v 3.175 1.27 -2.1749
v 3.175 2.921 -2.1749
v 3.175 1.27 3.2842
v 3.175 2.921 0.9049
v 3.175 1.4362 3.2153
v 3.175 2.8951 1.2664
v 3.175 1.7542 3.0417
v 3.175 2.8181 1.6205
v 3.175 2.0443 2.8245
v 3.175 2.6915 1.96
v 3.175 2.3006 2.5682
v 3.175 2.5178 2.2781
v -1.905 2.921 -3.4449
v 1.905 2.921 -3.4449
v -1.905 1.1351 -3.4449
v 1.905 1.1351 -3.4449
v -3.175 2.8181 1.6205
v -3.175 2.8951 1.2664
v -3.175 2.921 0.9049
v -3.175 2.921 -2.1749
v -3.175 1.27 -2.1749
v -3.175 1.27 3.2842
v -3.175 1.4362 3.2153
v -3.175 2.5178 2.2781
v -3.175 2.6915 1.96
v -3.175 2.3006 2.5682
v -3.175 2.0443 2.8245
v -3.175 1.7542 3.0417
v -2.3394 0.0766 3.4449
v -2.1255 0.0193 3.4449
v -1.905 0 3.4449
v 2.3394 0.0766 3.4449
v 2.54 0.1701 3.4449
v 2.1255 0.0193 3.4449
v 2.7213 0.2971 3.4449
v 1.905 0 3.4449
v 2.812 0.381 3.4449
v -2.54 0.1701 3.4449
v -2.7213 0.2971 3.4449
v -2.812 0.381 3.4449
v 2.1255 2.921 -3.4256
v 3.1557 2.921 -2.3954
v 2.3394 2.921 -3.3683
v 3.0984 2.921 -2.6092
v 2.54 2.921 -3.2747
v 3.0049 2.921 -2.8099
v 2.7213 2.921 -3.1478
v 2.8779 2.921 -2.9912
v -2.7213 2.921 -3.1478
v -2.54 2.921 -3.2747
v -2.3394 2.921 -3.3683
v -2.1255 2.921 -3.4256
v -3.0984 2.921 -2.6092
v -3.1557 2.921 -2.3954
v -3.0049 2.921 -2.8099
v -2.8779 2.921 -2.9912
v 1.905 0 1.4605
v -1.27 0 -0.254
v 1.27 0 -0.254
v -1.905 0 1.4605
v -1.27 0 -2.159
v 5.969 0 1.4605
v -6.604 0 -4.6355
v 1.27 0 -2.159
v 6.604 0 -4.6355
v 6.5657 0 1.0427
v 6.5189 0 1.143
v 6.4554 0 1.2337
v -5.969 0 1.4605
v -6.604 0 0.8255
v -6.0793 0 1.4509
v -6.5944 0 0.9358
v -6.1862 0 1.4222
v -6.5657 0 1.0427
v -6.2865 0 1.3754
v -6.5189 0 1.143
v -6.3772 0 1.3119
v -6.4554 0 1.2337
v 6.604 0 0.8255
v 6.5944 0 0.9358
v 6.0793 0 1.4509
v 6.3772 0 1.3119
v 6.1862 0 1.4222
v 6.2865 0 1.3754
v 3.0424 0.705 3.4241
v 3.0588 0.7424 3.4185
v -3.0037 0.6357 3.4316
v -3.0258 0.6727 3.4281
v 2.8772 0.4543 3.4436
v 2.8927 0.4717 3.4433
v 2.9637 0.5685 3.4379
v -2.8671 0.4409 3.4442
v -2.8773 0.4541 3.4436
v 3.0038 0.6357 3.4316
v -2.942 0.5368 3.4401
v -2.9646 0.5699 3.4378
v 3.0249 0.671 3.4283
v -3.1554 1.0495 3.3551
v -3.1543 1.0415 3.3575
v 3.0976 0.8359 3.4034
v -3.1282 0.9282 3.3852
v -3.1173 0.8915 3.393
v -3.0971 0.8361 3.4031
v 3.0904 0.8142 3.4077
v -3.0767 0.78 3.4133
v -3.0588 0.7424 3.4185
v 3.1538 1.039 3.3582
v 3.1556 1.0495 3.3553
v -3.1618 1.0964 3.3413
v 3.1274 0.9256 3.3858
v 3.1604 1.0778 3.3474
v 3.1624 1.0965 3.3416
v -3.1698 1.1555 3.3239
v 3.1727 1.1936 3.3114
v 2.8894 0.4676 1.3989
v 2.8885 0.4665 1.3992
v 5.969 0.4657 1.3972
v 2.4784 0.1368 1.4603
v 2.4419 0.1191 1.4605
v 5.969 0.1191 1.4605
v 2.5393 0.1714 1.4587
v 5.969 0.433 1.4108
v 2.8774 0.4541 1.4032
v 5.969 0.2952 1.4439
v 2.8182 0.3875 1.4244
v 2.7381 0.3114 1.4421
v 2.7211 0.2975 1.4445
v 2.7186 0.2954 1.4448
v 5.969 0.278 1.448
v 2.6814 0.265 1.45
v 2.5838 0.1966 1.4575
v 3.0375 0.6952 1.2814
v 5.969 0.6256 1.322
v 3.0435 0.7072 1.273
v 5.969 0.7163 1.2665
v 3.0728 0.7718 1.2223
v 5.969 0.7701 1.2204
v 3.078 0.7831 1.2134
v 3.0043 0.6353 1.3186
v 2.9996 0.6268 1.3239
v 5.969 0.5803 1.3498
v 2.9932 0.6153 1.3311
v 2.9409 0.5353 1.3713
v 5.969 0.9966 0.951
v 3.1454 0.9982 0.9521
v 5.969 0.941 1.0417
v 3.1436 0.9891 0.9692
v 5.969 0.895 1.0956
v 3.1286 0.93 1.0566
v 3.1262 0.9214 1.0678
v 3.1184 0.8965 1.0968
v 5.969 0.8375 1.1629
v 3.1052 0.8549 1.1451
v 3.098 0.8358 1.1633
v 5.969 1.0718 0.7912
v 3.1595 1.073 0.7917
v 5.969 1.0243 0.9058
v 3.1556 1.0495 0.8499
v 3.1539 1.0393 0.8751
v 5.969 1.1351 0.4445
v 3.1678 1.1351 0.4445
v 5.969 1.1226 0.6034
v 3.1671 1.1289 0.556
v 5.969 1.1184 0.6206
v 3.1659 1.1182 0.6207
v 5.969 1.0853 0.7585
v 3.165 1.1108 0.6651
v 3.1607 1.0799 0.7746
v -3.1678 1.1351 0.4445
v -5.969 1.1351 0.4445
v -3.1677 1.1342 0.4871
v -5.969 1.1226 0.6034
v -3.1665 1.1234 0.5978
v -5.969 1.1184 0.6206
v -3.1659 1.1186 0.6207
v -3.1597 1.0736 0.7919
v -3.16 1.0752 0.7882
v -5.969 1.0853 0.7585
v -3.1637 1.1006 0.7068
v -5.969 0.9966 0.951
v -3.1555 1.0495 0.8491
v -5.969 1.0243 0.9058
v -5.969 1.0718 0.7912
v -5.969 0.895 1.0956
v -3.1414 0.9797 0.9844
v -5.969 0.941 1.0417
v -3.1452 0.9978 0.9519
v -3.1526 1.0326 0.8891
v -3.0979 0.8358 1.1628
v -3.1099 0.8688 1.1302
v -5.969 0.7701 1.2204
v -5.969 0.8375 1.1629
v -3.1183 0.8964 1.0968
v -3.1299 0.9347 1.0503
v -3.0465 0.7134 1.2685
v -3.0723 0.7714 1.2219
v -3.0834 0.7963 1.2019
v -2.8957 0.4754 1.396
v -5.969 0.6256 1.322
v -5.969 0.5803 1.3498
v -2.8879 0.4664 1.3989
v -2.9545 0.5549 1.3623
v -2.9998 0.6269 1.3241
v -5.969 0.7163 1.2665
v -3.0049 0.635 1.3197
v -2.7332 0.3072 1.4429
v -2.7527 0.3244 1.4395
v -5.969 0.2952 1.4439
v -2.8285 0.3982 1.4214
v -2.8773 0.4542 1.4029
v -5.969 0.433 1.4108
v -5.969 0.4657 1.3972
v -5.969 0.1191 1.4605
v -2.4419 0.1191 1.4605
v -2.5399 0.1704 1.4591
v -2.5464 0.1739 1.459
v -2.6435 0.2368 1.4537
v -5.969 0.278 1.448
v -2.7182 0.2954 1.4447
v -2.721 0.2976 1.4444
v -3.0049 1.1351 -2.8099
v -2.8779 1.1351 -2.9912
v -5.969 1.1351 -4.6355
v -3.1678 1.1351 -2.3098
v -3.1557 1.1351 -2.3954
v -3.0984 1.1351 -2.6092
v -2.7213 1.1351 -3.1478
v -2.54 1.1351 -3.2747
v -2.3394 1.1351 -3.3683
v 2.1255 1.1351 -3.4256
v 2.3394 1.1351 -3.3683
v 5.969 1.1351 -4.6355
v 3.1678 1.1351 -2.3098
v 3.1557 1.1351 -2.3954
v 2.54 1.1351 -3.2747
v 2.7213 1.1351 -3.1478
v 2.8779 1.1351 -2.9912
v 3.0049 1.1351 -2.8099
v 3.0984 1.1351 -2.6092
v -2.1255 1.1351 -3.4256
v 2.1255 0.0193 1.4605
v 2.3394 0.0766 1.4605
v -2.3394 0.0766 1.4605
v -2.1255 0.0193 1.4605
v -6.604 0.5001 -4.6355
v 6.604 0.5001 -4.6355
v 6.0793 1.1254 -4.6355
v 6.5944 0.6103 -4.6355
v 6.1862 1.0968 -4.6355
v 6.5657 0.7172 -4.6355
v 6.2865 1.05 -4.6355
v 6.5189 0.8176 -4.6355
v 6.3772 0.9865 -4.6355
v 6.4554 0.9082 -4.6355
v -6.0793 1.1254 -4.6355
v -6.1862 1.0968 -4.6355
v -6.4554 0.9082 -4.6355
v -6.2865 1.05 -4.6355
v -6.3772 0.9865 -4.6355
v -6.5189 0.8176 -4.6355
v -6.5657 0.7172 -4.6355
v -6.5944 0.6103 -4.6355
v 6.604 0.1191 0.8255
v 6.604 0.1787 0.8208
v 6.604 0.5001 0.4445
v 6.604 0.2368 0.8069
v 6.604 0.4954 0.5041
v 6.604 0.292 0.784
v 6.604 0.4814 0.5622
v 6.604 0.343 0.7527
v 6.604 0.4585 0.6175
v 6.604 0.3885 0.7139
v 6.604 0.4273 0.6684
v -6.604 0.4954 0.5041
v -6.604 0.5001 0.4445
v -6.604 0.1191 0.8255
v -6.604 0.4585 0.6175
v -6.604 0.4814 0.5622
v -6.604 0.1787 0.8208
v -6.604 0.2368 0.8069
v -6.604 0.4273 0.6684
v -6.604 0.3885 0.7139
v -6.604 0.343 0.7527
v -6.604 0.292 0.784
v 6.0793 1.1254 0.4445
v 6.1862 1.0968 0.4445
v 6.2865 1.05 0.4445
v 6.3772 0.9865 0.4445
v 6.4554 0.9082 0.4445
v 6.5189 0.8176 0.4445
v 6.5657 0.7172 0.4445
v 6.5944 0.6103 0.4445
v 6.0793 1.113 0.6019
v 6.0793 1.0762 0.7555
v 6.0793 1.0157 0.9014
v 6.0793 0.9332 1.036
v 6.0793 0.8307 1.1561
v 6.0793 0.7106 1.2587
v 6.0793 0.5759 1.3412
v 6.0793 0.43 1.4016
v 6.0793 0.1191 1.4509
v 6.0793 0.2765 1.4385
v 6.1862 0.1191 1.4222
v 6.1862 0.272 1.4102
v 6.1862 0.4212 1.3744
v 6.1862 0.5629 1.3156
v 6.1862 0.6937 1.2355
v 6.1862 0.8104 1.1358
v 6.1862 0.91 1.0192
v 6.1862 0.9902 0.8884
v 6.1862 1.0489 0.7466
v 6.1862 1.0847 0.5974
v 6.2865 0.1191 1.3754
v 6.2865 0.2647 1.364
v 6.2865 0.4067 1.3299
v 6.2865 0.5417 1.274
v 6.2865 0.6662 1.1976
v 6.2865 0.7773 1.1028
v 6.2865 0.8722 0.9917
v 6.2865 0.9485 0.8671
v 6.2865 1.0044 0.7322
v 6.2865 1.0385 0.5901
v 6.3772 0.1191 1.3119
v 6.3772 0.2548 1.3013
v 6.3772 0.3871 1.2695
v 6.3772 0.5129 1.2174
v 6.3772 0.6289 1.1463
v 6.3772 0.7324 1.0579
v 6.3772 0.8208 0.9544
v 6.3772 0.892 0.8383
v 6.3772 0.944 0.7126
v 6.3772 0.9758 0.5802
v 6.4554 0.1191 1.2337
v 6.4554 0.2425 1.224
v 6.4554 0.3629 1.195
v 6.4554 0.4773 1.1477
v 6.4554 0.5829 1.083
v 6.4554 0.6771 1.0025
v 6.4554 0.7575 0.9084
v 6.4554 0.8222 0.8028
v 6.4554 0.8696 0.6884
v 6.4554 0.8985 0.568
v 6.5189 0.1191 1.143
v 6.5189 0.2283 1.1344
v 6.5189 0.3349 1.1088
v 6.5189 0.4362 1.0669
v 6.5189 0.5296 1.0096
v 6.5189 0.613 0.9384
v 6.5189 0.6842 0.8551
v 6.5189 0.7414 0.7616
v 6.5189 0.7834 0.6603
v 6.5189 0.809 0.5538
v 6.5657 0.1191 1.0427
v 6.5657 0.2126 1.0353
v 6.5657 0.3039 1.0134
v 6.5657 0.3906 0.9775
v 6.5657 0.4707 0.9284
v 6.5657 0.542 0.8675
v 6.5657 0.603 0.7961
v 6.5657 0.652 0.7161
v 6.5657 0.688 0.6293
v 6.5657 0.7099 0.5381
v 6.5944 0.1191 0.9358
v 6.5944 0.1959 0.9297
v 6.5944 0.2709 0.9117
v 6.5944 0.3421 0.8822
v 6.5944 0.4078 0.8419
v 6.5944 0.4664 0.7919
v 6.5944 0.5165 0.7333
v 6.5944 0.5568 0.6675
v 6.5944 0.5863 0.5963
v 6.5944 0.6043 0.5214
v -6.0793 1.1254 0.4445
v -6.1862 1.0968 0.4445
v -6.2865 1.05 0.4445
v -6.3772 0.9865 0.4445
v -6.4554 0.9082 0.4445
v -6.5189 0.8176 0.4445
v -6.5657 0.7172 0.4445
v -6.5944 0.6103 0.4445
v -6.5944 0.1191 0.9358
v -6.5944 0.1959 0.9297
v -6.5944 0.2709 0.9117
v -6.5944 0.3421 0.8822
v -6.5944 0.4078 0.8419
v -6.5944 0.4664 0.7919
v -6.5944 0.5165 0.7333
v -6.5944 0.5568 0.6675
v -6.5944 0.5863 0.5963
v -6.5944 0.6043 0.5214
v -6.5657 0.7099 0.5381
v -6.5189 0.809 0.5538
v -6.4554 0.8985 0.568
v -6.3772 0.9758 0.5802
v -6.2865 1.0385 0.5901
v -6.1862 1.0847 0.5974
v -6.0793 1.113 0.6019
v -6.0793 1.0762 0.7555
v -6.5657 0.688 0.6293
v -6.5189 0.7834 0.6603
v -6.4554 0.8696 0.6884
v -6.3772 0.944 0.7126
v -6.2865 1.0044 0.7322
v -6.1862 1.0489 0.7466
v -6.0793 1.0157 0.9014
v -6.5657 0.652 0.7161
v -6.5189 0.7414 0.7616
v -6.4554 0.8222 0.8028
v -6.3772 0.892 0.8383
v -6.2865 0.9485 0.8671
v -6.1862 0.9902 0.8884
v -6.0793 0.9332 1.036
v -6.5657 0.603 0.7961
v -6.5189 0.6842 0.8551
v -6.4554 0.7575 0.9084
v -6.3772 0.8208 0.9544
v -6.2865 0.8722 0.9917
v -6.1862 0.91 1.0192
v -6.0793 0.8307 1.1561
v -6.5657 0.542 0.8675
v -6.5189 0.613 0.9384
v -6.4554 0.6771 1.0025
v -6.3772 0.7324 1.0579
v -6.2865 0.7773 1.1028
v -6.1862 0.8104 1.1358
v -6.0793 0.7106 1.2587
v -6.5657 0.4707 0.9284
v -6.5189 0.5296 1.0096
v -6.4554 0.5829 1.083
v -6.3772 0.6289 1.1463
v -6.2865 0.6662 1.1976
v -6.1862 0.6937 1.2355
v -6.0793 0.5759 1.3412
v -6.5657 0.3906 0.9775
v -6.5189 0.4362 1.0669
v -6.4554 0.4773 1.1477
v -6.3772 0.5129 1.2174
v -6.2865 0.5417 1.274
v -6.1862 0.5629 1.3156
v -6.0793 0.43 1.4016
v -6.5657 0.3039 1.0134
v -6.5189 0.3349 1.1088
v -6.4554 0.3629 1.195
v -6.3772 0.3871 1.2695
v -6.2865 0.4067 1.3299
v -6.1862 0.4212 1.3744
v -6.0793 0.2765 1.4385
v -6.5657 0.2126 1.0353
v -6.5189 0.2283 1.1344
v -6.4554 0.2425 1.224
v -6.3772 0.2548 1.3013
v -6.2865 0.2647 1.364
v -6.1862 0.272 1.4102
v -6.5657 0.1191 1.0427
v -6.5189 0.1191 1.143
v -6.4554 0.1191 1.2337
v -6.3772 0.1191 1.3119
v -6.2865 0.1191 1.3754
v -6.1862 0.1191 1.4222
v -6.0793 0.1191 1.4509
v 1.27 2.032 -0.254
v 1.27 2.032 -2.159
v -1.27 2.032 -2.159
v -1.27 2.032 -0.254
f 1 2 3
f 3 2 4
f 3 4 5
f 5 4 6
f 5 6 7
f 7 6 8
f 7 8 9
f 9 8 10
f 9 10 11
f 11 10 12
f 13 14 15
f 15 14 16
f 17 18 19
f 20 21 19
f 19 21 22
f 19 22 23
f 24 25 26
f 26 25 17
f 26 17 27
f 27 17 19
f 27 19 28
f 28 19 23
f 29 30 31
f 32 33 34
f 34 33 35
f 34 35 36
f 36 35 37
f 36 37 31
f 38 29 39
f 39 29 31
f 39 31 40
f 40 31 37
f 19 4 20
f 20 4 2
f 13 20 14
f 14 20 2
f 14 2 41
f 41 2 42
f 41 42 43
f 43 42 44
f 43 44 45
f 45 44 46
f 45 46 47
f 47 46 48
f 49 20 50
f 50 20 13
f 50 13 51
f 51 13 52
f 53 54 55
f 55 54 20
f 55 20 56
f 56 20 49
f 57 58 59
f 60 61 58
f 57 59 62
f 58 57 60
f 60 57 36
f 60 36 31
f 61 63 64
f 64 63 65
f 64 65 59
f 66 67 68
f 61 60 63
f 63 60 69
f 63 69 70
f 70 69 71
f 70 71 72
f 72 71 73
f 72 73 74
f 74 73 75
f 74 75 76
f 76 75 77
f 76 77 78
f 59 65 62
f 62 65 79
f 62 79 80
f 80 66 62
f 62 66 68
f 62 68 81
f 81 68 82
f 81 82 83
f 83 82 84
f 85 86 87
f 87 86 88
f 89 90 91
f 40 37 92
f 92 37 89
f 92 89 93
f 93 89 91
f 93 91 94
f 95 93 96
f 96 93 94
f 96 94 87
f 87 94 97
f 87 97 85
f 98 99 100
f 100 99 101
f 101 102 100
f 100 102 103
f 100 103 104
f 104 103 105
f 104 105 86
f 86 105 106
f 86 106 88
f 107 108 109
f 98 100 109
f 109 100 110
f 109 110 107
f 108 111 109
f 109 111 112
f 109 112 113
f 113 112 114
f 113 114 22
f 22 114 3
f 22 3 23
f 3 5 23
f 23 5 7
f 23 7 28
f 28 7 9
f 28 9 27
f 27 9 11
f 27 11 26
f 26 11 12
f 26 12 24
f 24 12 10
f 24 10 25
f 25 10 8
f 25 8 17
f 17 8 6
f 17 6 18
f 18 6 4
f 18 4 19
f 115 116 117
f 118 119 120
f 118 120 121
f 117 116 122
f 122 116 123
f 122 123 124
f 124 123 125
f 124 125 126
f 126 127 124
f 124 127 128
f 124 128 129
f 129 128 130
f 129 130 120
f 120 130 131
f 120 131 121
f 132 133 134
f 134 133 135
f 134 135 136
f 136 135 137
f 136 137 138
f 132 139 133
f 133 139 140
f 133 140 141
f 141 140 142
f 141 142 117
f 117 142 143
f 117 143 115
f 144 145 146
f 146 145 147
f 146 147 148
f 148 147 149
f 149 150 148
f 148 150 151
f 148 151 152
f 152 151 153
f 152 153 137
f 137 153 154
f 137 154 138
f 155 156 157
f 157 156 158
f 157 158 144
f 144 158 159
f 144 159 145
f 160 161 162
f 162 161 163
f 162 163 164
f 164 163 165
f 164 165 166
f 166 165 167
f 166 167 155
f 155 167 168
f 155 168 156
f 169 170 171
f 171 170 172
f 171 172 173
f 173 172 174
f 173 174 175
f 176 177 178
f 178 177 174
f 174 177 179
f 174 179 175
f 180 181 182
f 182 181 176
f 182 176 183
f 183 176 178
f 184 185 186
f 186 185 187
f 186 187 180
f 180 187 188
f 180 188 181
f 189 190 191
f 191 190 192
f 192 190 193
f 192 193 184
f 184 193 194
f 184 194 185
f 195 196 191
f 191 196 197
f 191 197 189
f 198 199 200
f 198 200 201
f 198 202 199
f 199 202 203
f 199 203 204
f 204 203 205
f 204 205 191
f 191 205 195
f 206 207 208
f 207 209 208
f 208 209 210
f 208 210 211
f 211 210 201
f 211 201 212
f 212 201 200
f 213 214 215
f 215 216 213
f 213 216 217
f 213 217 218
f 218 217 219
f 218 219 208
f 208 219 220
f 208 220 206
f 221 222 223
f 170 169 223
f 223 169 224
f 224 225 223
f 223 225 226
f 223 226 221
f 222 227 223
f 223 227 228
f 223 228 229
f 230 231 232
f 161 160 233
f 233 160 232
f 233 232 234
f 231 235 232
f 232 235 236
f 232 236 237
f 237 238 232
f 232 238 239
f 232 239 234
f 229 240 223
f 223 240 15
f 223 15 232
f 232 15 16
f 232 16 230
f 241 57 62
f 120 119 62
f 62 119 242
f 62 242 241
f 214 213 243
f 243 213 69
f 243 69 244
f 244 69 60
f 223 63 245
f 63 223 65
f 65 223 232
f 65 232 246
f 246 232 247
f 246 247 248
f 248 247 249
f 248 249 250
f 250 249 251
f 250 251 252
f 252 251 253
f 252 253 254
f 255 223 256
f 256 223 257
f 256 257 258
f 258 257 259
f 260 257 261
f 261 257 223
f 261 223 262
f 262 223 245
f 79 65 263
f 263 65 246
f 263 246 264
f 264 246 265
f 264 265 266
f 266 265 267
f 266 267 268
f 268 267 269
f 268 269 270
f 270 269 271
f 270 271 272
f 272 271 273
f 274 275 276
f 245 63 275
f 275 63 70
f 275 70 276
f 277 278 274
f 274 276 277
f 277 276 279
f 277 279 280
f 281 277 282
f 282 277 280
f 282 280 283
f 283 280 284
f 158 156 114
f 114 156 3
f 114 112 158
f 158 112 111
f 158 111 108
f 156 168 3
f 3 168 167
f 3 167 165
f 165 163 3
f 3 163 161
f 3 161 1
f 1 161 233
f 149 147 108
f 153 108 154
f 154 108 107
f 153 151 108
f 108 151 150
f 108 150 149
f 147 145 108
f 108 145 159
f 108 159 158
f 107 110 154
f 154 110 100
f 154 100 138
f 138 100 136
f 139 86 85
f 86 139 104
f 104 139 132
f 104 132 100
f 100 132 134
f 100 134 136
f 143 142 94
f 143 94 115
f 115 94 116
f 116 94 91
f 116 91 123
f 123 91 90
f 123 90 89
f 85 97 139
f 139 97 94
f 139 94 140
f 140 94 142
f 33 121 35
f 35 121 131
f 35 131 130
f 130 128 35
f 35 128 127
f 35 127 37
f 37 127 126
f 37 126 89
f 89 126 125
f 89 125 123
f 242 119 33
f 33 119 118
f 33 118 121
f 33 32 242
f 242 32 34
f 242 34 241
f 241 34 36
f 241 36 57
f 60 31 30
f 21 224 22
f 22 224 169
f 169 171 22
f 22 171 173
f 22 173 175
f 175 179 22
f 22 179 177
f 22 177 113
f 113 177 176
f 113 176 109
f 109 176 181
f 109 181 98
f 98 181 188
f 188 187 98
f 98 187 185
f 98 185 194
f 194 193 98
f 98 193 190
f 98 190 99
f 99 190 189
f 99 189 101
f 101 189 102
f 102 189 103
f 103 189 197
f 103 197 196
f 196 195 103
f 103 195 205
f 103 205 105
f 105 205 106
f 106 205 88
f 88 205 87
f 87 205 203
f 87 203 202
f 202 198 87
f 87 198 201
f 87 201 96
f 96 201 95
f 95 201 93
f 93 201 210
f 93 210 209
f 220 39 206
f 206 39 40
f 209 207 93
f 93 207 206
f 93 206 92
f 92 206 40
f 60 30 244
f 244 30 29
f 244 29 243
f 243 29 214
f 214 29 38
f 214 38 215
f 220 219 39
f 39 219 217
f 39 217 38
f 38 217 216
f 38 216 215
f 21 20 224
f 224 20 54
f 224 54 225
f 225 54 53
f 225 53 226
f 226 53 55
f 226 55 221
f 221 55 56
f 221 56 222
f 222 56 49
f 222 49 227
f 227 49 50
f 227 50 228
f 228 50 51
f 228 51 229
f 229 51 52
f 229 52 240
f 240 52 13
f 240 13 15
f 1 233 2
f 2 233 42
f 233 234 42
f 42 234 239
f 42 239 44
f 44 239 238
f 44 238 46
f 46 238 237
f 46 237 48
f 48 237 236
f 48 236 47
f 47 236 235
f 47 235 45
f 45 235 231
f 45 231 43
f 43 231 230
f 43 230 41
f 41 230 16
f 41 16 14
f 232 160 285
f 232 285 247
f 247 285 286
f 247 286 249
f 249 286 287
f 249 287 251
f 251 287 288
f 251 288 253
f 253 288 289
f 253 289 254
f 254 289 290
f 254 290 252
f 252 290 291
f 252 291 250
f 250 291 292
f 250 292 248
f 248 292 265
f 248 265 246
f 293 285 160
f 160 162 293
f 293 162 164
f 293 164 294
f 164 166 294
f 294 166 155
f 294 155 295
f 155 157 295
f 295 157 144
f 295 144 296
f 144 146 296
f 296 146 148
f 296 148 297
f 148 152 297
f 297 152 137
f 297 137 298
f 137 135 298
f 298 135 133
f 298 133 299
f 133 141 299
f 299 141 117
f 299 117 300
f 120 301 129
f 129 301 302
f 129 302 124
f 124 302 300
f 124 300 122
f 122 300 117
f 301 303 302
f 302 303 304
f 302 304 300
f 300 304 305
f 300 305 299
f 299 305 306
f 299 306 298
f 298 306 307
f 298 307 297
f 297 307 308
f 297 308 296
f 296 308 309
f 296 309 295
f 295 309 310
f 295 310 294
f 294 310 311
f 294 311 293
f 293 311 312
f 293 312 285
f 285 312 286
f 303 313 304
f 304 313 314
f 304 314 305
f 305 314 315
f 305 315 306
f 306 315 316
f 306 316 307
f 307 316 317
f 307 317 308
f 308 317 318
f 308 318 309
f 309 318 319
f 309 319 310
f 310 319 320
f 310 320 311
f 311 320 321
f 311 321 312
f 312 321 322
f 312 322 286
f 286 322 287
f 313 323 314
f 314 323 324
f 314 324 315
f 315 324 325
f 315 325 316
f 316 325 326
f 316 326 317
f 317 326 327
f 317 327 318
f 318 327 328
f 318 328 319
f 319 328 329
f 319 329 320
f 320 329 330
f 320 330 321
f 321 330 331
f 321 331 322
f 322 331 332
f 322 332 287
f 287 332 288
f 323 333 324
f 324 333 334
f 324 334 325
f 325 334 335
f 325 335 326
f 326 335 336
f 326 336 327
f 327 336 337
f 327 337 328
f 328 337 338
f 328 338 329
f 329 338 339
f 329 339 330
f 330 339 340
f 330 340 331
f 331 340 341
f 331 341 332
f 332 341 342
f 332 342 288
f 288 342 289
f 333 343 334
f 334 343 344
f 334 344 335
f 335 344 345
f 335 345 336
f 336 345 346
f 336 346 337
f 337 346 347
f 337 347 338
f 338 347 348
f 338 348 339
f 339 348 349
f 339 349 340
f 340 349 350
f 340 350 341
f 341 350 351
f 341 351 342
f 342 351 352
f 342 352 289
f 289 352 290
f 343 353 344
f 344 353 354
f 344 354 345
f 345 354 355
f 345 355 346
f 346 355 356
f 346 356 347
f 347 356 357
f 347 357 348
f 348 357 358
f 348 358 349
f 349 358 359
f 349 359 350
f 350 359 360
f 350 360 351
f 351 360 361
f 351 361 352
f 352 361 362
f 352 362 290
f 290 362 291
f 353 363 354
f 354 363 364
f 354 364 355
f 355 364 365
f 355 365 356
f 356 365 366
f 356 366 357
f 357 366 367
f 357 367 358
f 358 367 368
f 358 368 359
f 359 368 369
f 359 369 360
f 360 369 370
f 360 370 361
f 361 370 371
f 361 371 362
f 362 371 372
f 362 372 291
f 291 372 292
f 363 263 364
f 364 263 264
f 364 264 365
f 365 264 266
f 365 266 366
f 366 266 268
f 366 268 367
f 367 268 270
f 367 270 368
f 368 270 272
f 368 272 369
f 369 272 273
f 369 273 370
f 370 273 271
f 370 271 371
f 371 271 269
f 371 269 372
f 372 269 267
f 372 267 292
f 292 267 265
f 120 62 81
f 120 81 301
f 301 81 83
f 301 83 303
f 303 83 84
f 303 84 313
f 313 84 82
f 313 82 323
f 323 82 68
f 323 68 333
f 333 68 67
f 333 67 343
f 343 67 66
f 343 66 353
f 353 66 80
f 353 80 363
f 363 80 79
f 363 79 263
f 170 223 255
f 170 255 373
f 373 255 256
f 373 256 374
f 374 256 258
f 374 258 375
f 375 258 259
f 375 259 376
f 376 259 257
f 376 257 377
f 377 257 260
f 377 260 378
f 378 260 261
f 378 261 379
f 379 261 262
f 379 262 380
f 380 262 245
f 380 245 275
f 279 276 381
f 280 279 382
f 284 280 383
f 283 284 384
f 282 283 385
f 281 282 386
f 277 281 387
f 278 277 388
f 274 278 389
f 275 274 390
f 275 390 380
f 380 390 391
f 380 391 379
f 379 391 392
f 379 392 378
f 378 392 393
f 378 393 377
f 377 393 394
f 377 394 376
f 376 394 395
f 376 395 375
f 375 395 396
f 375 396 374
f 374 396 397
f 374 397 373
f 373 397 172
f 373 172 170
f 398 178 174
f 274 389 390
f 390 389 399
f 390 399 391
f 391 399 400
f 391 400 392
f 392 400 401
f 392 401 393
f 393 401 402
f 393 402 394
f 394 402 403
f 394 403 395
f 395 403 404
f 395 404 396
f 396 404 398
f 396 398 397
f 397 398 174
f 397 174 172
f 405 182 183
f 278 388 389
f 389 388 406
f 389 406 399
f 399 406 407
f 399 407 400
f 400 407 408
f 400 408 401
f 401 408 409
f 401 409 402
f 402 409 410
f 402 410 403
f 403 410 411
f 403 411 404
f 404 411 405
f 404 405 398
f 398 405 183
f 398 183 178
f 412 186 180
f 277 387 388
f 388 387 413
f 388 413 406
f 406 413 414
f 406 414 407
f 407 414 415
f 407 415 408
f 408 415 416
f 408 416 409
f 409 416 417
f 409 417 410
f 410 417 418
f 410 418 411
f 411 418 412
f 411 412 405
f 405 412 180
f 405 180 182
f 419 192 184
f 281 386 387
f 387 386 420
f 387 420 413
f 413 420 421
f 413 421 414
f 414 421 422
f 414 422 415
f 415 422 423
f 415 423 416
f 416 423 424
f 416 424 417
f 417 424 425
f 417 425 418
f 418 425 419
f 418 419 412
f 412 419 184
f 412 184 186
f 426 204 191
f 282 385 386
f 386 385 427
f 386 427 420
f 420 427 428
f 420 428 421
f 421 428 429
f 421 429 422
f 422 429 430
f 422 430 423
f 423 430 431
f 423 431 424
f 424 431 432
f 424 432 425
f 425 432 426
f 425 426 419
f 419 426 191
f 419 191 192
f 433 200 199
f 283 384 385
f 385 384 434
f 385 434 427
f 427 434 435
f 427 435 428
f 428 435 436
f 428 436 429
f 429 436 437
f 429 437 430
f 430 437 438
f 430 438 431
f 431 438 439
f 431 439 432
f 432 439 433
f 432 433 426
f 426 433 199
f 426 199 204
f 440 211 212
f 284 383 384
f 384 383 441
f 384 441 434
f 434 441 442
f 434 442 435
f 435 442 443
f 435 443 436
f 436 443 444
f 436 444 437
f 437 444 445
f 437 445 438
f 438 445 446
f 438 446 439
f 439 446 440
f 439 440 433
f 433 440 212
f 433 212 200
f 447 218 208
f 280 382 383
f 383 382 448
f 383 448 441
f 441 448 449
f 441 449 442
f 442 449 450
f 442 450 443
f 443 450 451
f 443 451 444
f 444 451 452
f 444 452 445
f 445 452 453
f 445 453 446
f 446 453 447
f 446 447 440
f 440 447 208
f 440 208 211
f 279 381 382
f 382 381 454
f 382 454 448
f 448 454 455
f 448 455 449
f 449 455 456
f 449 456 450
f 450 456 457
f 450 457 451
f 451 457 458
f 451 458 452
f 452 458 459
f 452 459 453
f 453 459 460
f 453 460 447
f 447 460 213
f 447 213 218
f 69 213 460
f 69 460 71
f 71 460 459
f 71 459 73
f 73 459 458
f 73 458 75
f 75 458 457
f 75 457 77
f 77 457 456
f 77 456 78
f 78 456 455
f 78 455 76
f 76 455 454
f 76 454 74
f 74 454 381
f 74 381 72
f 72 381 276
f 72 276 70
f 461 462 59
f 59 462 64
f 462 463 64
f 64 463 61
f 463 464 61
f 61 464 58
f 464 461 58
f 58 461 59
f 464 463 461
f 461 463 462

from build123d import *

# Parameters (mm, degrees)
SKETCH3_W                = 6.35
SKETCH3_H                = 6.88975
BOSS_EXTRUDE3_DEPTH      = 2.921
FILLET1_R                = 2.54
BOSS_EXTRUDE5_DEPTH      = 3.429
BOSS_EXTRUDE5_DEPTH_BACK = 9.779
SKETCH5_W                = 1.190625
SKETCH5_H                = 1.1350625
FILLET7_START            = 1.4605
FILLET7_DEPTH            = 1.984375
FILLET7_START_2          = -4.6355
FILLET7_2_DEPTH          = 6.096
FILLET7_START_3          = -3.175
FILLET7_3_DEPTH          = 0.733117551
FILLET7_START_4          = 2.441882449
FILLET7_4_DEPTH          = 0.733117551
FILLET7_START_5          = -3.4448751
FILLET7_5_DEPTH          = 4.9053751
FILLET8_R                = 1.27
FILLET10_R               = 0.635
SKETCH6_W                = 2.54
SKETCH6_H                = 1.905
CUT_EXTRUDE1_DEPTH       = 2.032


with BuildPart() as part:
    # Sketch3 → Boss-Extrude3 (new body)
    with BuildSketch(Plane(origin=(0, 0, 0), x_dir=(1, 0, 0), z_dir=(0, 1, 0))):
        Rectangle(SKETCH3_W, SKETCH3_H)
    extrude(amount=BOSS_EXTRUDE3_DEPTH)

    # Fillet1
    fillet1_edges = [part.edges().sort_by_distance(p)[0] for p in [
        (0, 2.921, 3.444875),
    ]]
    fillet(fillet1_edges, radius=FILLET1_R)

    # Sketch5 → Boss-Extrude5 (add, two sides: drawn at the far end of the back side and taken through both)
    with BuildSketch(Plane.ZY.offset(3.175).offset(-BOSS_EXTRUDE5_DEPTH_BACK)):
        with BuildLine():
            Line((-3.444875, 0), (1.4605, 0))
            Line((1.4605, 0), (1.4605, 0.1190625))
            ThreePointArc((1.4605, 0.1190625), (1.16292049, 0.83748299), (0.4445, 1.1350625))
            Line((0.4445, 1.1350625), (-3.444875, 1.1350625))
            Line((-3.444875, 1.1350625), (-3.444875, 0))
        make_face()
        with Locations((-4.0401875, 0.56753125)):
            Rectangle(SKETCH5_W, SKETCH5_H)
    extrude(amount=BOSS_EXTRUDE5_DEPTH + BOSS_EXTRUDE5_DEPTH_BACK)

    # Fillet7: read off the stored shape, not the designer's step
    # Fillet7 outline → Fillet7 (cut)
    with BuildSketch(Plane.XY.offset(FILLET7_START)):
        with BuildLine():
            Line((1.905, 0), (3.175, 0))
            Line((3.175, 0), (3.175, 1.27))
            ThreePointArc((3.175, 1.27), (2.803025612, 0.371974388), (1.905, 0))
        make_face()
        with BuildLine():
            Line((-3.175, 0), (-1.905, 0))
            ThreePointArc((-1.905, 0), (-2.803025612, 0.371974388), (-3.175, 1.27))
            Line((-3.175, 1.27), (-3.175, 0))
        make_face()
    extrude(amount=FILLET7_DEPTH, mode=Mode.SUBTRACT)

    # Fillet7 2 outline → Fillet7 2 (cut)
    with BuildSketch(Plane.XY.offset(FILLET7_START_2)):
        with BuildLine():
            ThreePointArc((3.175, 1.27), (3.173201501, 1.202435569), (3.167811099, 1.1350625))
            Line((3.167811099, 1.1350625), (3.175, 1.1350625))
            Line((3.175, 1.1350625), (3.175, 1.27))
        make_face()
        with BuildLine():
            Line((-3.175, 1.1350625), (-3.167811099, 1.1350625))
            ThreePointArc((-3.167811099, 1.1350625), (-3.173201501, 1.202435569), (-3.175, 1.27))
            Line((-3.175, 1.27), (-3.175, 1.1350625))
        make_face()
    extrude(amount=FILLET7_2_DEPTH, mode=Mode.SUBTRACT)

    # Fillet7 3 outline → Fillet7 3 (cut)
    with BuildSketch(Plane.YZ.offset(FILLET7_START_3)):
        with BuildLine():
            Line((1.1350625, 1.4605), (0.1190625, 1.4605))
            ThreePointArc((0.1190625, 1.4605), (0.83748299, 1.16292049), (1.1350625, 0.4445))
            Line((1.1350625, 0.4445), (1.1350625, 1.4605))
        make_face()
    extrude(amount=FILLET7_3_DEPTH, mode=Mode.SUBTRACT)

    # Fillet7 4 outline → Fillet7 4 (cut)
    with BuildSketch(Plane.YZ.offset(FILLET7_START_4)):
        with BuildLine():
            Line((1.1350625, 1.4605), (0.1190625, 1.4605))
            ThreePointArc((0.1190625, 1.4605), (0.83748299, 1.16292049), (1.1350625, 0.4445))
            Line((1.1350625, 0.4445), (1.1350625, 1.4605))
        make_face()
    extrude(amount=FILLET7_4_DEPTH, mode=Mode.SUBTRACT)

    # Fillet7 5 outline → Fillet7 5 (add)
    with BuildSketch(Plane.XY.offset(FILLET7_START_5)):
        with BuildLine():
            Line((2.441882449, 1.1350625), (2.441882467, 0.119062462))
            ThreePointArc((2.441882467, 0.119062462), (2.938338401, 0.531683166), (3.167811099, 1.1350625))
            Line((3.167811099, 1.1350625), (2.441882449, 1.1350625))
        make_face()
        with BuildLine():
            ThreePointArc((-3.167811099, 1.1350625), (-2.938338401, 0.531683166), (-2.441882467, 0.119062462))
            Line((-2.441882467, 0.119062462), (-2.441882449, 1.1350625))
            Line((-2.441882449, 1.1350625), (-3.167811099, 1.1350625))
        make_face()
    extrude(amount=FILLET7_5_DEPTH)

    # Fillet8
    # the kernel refuses this fillet: 1.27 mm, written as the material it takes off along each edge
    with BuildSketch(Plane(origin=(-3.175, -1.905, -3.444875), x_dir=(0, 0, 1), z_dir=(0, 1, 0))) as fillet8_piece_1_section:
        with BuildLine():
            CenterArc((FILLET8_R, FILLET8_R), FILLET8_R, 180, 90)
            Line((0, FILLET8_R), (0, 0))
            Line((0, 0), (FILLET8_R, 0))
        make_face()
    fillet8_piece_1 = extrude(amount=8.001, mode=Mode.PRIVATE)
    fillet8_piece_1 = split(fillet8_piece_1, bisect_by=Plane(origin=(-3.175, 1.1350625, -3.444875), z_dir=(0, 1, 0)), keep=Keep.TOP, mode=Mode.PRIVATE)
    add(fillet8_piece_1, mode=Mode.SUBTRACT)
    with BuildSketch(Plane(origin=(3.175, -1.905, -3.444875), x_dir=(-1, 0, 0), z_dir=(0, 1, 0))) as fillet8_piece_2_section:
        with BuildLine():
            CenterArc((FILLET8_R, FILLET8_R), FILLET8_R, 180, 90)
            Line((0, FILLET8_R), (0, 0))
            Line((0, 0), (FILLET8_R, 0))
        make_face()
    fillet8_piece_2 = extrude(amount=8.001, mode=Mode.PRIVATE)
    fillet8_piece_2 = split(fillet8_piece_2, bisect_by=Plane(origin=(3.175, 1.1350625, -3.444875), z_dir=(0, 1, 0)), keep=Keep.TOP, mode=Mode.PRIVATE)
    add(fillet8_piece_2, mode=Mode.SUBTRACT)

    # Fillet10
    fillet10_edges = [part.edges().sort_by_distance(p)[0] for p in [
        (-6.604, 0.83748299, 1.16292049),
        (-6.604, 1.1350625, -2.0955),
        (-6.604, 0.05953125, 1.4605),
        (6.604, 0.83748299, 1.16292049),
        (6.604, 0.05953125, 1.4605),
        (6.604, 1.1350625, -2.0955),
    ]]
    fillet(fillet10_edges, radius=FILLET10_R)

    # Sketch6 → Cut-Extrude1 (cut)
    with BuildSketch(Plane.XZ):
        with Locations((0, -1.2065)):
            Rectangle(SKETCH6_W, SKETCH6_H)
    extrude(amount=-CUT_EXTRUDE1_DEPTH, mode=Mode.SUBTRACT)


solid = part.part
